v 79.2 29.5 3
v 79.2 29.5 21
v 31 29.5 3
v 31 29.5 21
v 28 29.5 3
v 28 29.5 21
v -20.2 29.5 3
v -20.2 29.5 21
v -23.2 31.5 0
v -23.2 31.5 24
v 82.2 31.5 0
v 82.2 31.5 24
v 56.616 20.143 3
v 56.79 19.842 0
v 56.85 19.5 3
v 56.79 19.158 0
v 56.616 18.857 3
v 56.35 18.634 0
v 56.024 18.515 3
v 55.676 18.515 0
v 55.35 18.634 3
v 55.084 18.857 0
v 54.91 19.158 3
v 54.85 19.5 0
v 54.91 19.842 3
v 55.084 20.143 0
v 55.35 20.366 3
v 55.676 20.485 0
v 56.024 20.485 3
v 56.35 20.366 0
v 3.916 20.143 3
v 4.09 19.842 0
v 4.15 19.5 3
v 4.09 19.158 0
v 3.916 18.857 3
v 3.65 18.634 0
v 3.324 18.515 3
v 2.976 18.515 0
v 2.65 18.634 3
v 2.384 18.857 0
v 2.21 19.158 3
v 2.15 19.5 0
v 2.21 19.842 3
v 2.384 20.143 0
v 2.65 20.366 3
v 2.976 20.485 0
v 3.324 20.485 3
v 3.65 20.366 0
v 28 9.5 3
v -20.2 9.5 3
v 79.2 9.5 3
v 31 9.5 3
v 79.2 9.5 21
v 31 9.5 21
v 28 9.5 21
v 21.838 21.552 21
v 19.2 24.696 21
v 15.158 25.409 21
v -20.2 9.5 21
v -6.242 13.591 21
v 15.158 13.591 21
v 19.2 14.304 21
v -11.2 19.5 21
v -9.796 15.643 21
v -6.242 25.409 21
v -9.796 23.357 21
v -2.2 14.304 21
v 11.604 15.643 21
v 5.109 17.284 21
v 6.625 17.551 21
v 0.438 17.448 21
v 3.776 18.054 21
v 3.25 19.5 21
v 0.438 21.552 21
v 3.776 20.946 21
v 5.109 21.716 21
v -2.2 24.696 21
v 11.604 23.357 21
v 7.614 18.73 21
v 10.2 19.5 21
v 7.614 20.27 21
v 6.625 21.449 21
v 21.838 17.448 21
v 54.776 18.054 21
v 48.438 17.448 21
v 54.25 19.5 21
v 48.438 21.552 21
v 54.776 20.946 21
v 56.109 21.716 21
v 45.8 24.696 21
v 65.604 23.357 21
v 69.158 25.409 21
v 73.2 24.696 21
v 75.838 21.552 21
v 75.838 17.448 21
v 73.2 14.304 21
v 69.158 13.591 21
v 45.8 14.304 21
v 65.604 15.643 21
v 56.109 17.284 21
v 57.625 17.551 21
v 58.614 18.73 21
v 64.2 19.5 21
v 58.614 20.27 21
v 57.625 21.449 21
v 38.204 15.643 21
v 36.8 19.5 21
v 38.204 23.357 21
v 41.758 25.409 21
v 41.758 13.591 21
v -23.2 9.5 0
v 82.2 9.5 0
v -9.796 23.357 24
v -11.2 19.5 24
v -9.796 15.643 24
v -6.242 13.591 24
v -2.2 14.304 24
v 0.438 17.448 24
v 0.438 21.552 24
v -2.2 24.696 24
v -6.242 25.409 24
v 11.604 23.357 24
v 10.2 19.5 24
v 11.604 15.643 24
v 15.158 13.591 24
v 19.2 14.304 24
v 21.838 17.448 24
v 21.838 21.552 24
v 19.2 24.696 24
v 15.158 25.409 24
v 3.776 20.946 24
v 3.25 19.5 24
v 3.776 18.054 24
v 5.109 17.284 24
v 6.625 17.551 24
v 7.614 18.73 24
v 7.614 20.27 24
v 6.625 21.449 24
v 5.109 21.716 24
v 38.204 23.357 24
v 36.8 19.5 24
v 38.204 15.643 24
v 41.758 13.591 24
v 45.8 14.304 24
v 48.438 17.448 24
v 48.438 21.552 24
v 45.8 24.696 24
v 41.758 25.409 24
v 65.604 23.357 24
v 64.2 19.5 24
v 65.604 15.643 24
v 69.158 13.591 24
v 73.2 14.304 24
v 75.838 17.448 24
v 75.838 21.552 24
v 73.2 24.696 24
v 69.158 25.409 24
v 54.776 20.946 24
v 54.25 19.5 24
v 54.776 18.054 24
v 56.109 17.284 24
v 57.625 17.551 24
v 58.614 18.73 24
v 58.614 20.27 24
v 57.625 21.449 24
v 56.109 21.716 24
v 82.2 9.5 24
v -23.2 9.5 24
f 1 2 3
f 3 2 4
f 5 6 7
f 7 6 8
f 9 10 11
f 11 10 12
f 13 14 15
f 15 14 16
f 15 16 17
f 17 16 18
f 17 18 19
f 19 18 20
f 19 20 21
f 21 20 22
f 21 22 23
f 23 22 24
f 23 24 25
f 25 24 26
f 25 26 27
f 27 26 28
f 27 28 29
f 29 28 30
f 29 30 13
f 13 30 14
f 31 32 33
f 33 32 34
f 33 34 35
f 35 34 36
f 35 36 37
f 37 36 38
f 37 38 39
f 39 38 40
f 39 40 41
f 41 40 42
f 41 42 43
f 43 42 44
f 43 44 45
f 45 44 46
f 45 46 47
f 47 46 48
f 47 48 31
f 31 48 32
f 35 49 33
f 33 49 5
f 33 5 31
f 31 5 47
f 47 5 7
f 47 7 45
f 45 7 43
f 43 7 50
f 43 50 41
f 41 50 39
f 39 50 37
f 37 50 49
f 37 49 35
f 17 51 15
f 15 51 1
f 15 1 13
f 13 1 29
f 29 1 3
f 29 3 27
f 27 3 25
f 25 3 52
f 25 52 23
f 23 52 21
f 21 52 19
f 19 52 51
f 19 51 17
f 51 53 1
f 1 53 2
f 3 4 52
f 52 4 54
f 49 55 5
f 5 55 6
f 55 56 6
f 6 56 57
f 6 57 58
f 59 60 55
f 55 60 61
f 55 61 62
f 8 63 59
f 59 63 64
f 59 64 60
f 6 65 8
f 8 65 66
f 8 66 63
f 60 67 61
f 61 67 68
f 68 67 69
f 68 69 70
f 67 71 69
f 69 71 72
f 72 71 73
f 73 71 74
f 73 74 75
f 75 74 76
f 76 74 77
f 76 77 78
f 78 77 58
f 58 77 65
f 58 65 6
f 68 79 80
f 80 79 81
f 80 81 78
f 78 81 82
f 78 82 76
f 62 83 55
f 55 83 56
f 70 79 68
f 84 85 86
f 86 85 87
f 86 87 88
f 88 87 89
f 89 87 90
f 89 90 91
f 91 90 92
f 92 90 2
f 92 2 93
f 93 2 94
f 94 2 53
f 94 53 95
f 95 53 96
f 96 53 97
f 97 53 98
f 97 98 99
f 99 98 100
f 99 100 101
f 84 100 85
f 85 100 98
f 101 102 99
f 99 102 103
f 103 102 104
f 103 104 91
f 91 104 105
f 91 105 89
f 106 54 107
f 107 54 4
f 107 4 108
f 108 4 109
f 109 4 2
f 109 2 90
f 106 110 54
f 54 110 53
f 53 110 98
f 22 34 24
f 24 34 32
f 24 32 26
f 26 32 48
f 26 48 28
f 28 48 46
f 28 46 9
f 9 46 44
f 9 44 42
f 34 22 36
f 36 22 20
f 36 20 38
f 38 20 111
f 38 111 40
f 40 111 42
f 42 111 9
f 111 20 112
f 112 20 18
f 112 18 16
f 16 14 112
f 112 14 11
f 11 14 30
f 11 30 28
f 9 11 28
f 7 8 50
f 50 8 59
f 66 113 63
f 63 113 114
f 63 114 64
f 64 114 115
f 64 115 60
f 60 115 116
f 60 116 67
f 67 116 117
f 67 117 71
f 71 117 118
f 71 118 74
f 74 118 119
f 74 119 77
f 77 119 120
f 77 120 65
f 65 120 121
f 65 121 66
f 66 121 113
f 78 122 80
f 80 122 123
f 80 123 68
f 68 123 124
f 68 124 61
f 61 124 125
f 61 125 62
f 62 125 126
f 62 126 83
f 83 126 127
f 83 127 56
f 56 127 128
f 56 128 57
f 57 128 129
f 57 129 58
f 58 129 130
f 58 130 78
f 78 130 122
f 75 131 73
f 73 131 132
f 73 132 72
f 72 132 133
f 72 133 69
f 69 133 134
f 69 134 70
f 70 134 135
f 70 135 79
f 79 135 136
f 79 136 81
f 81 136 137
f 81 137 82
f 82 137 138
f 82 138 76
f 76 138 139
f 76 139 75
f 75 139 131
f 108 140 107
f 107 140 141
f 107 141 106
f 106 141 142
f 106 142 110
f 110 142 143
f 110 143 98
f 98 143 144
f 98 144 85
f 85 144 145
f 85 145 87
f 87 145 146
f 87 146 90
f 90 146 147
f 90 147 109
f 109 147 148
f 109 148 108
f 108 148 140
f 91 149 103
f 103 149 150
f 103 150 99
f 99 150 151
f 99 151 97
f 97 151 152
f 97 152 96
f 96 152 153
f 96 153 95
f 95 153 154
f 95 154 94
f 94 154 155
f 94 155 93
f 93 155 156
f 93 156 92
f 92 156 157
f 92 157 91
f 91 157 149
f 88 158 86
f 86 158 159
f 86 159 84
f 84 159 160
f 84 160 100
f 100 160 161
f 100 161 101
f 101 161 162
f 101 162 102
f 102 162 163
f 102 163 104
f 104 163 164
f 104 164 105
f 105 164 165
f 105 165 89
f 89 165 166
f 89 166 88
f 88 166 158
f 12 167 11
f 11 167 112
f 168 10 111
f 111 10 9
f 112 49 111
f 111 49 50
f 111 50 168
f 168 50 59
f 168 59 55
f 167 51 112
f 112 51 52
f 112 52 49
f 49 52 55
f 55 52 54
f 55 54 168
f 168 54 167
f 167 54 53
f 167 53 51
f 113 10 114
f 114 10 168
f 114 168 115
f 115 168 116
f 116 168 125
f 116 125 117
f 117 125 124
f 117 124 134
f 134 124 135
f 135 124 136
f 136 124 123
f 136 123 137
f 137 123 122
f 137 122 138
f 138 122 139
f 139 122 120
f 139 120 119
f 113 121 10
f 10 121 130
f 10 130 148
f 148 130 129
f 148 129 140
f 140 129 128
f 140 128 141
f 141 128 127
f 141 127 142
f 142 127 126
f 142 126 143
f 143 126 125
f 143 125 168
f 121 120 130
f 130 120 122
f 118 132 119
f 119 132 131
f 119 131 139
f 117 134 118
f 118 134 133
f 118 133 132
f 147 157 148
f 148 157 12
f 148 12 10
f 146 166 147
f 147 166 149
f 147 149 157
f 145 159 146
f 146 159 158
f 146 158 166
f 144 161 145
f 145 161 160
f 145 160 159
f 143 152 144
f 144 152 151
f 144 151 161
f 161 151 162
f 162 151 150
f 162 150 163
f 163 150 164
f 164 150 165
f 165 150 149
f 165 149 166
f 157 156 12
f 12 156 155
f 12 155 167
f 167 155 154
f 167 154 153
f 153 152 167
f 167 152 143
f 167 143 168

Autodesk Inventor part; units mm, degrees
ref_plane "YZ Plane" through (0, 0, 0) normal (1, 0, 0) x (0, 1, 0)
ref_plane "XZ Plane" through (0, 0, 0) normal (0, 1, 0) x (-1, 0, 0)
ref_plane "XY Plane" through (0, 0, 0) normal (0, 0, 1) x (1, 0, 0)
ref_plane "Work Plane2" through (56.5, 19.5, 24) normal (0, 0, -1) x (-1, 0, 0)
sketch "Sketch2" plane through (56.5, 19.5, 24) normal (0, 0, -1) x (-1, 0, 0)
  circle A0 centre (-13.7, 0) radius 2.5 projected
  circle A1 centre (13.7, 0) radius 2.5 projected
  line L0 (25.7, -17.7) -> (25.7, 17.7) projected
  line L1 (25.7, 17.7) -> (-25.7, 17.7) projected
  line L2 (-25.7, 17.7) -> (-25.7, -17.7) projected
  line L3 (-25.7, -17.7) -> (25.7, -17.7) projected
  arc A2 (79.7, 4.408) -> (68.0785, -17.7) centre (105, -23) ccw projected
  line L4 (79.7, 4.408) -> (79.7, 17.7) projected
  line L5 (79.7, 17.7) -> (28.3, 17.7) projected
  line L6 (28.3, 17.7) -> (28.3, -17.7) projected
  line L7 (28.3, -17.7) -> (68.0785, -17.7) projected
  line L8 (-25.7, -10) -> (79.7, -10)
  line L9 (79.7, -10) -> (79.7, 10)
  line L10 (79.7, 10) -> (-25.7, 10)
  line L11 (-25.7, 10) -> (-25.7, -10)
  circle A3 centre (-13.7, 0) radius 6
  circle A4 centre (13.7, 0) radius 6
  circle A5 centre (40.3, 0) radius 6
  circle A6 centre (61.7, 0) radius 6
  line L12 (-13.7, 0) -> (13.7, 0)
  line L13 (40.3, 0) -> (61.7, 0)
  circle A7 centre (0, 0) radius 2.25
  circle A8 centre (51, 0) radius 2.25
  line L14 (4.5099, -3.2615) -> (2.8081, -0.5216) projected
  line L15 (2.8081, -0.5216) -> (1.1404, -3.2615) projected
  line L16 (1.1404, -3.2615) -> (0.074, -3.2615) projected
  line L17 (0.074, -3.2615) -> (2.2352, 0.2328) projected
  line L18 (2.2352, 0.2328) -> (0.0059, 3.7385) projected
  line L19 (0.0059, 3.7385) -> (1.0099, 3.7385) projected
  line L20 (1.0099, 3.7385) -> (2.7458, 0.9476) projected
  line L21 (2.7458, 0.9476) -> (4.4475, 3.7385) projected
  line L22 (4.4475, 3.7385) -> (5.514, 3.7385) projected
  line L23 (5.514, 3.7385) -> (3.3244, 0.1875) projected
  line L24 (3.3244, 0.1875) -> (5.514, -3.2615) projected
  line L25 (5.514, -3.2615) -> (4.5099, -3.2615) projected
  line L26 (-2.3823, -2.4333) -> (-0.0338, -2.4333) projected
  line L27 (-0.0338, -2.4333) -> (-0.0338, -3.2615) projected
  line L28 (-0.0338, -3.2615) -> (-5.6611, -3.2615) projected
  line L29 (-5.6611, -3.2615) -> (-5.6611, -2.4333) projected
  line L30 (-5.6611, -2.4333) -> (-3.3126, -2.4333) projected
  line L31 (-3.3126, -2.4333) -> (-3.3126, 3.7385) projected
  line L32 (-3.3126, 3.7385) -> (-2.3823, 3.7385) projected
  line L33 (-2.3823, 3.7385) -> (-2.3823, -2.4333) projected
  arc A9 (42.6087, -0.959) -> (42.3892, -1.3731) centre (40.3, 0) ccw projected
  arc A10 (59.4794, -1.1484) -> (60.4698, 2.1764) centre (61.7, 0) ccw projected
  line L34 (57.8929, -1.3844) -> (57.5298, -1.3844) projected
  spline S0 degree 3 poles (57.5298, -1.3844) (57.5237, -1.3081) (57.5086, -1.2288) (57.4558, -1.1142) (57.4282, -1.0735) (57.3717, -1.0212) (57.3384, -0.995) (57.2167, -0.9422) (57.1455, -0.9254) (56.9893, -0.9013) (56.8956, -0.8966) (56.8066, -0.8966) knots 0 0 0 0 0.022986 0.022986 0.03781 0.03781 0.046043 0.046043 0.054997 0.054997 0.066568 0.066568 0.066568 0.066568 projected
  line L35 (56.8066, -0.8966) -> (56.8066, -0.5761) projected
  line L36 (56.8066, -0.5761) -> (57.4419, -0.5761) projected
  line L37 (57.4419, -0.5761) -> (57.4419, 1.7695) projected
  line L38 (57.4419, 1.7695) -> (56.8066, 1.7695) projected
  line L39 (56.8066, 1.7695) -> (56.8066, 2.1269) projected
  line L40 (56.8066, 2.1269) -> (58.514, 2.1269) projected
  line L41 (58.514, 2.1269) -> (58.514, 1.7695) projected
  line L42 (58.514, 1.7695) -> (57.8929, 1.7695) projected
  line L43 (57.8929, 1.7695) -> (57.8929, -1.3844) projected
  spline S1 degree 3 poles (45.7308, 1.7809) (45.6428, 1.7809) (45.5609, 1.7718) (45.4737, 1.739) (45.4331, 1.721) (45.3624, 1.6543) (45.3386, 1.6213) (45.3196, 1.5852) knots 0 0 0 0 0.026399 0.026399 0.03577 0.03577 0.042559 0.042559 0.042559 0.042559 projected
  spline S2 degree 3 poles (45.3196, 1.5852) (45.285, 1.5198) (45.2647, 1.448) (45.2437, 1.3061) (45.2345, 1.1849) (45.2345, 0.9981) knots 0 0 0 0 0.022182 0.022182 0.043047 0.043047 0.043047 0.043047 projected
  line L44 (45.2345, 0.9981) -> (45.2345, -0.4995) projected
  line L45 (45.2345, -0.4995) -> (44.792, -0.4995) projected
  line L46 (44.792, -0.4995) -> (44.792, 1.2051) projected
  spline S3 degree 3 poles (44.792, 1.2051) (44.792, 1.3545) (44.8067, 1.5155) (44.8672, 1.6957) (44.8911, 1.7601) (44.958, 1.877) (44.9913, 1.9233) (45.0302, 1.9652) knots 0 0 0 0 0.044826 0.044826 0.056895 0.056895 0.065812 0.065812 0.065812 0.065812 projected
  spline S4 degree 3 poles (45.0302, 1.9652) (45.0905, 2.0317) (45.1609, 2.0847) (45.3085, 2.1538) (45.3745, 2.1714) (45.4853, 2.1945) (45.5496, 2.2006) (45.6145, 2.2006) knots 0 0 0 0 0.026924 0.026924 0.04891 0.04891 0.078499 0.078499 0.078499 0.078499 projected
  spline S5 degree 3 poles (45.6145, 2.2006) (45.7367, 2.2006) (45.856, 2.1806) (46.1082, 2.0762) (46.2634, 1.9672) (46.4115, 1.8376) knots 0 0 0 0 0.03664 0.03664 0.081871 0.081871 0.081871 0.081871 projected
  line L47 (46.4115, 1.8376) -> (46.4115, 2.1269) projected
  line L48 (46.4115, 2.1269) -> (46.854, 2.1269) projected
  line L49 (46.854, 2.1269) -> (46.854, -0.4995) projected
  line L50 (46.854, -0.4995) -> (46.4115, -0.4995) projected
  line L51 (46.4115, -0.4995) -> (46.4115, 1.4632) projected
  spline S6 degree 3 poles (46.4115, 1.4632) (46.309, 1.5525) (46.1968, 1.6275) (46.0461, 1.7035) (45.9801, 1.7358) (45.8432, 1.7724) (45.7873, 1.7809) (45.7308, 1.7809) knots 0 0 0 0 0.040789 0.040789 0.050641 0.050641 0.057178 0.057178 0.057178 0.057178 projected
  spline S7 degree 3 poles (51.8516, 1.6844) (51.7705, 1.7209) (51.6843, 1.748) (51.5493, 1.7794) (51.4479, 1.8007) (51.3127, 1.8007) knots 0 0 0 0 0.026676 0.026676 0.041585 0.041585 0.041585 0.041585 projected
  spline S8 degree 3 poles (51.3127, 1.8007) (51.1845, 1.8007) (51.0556, 1.7828) (50.8451, 1.6988) (50.7638, 1.6466) (50.6381, 1.5232) (50.5772, 1.4464) (50.4997, 1.2649) (50.4792, 1.1913) (50.4509, 1.032) (50.4448, 0.945) (50.4448, 0.8591) knots 0 0 0 0 0.038454 0.038454 0.067967 0.067967 0.091284 0.091284 0.105855 0.105855 0.12236 0.12236 0.12236 0.12236 projected
  line L52 (50.4448, 0.8591) -> (52.2628, 0.8591) projected
  line L53 (52.2628, 0.8591) -> (52.2628, 0.618) projected
  spline S9 degree 3 poles (52.2628, 0.618) (52.2628, 0.4424) (52.2453, 0.2525) (52.1718, 0.0405) (52.143, -0.0344) (52.0602, -0.1744) (52.0187, -0.2302) (51.9707, -0.2811) knots 0 0 0 0 0.052672 0.052672 0.067134 0.067134 0.078057 0.078057 0.078057 0.078057 projected
  spline S10 degree 3 poles (51.9707, -0.2811) (51.893, -0.3652) (51.8025, -0.4318) (51.617, -0.5165) (51.5377, -0.5373) (51.3865, -0.5664) (51.2983, -0.5733) (51.2106, -0.5733) knots 0 0 0 0 0.034343 0.034343 0.061185 0.061185 0.096748 0.096748 0.096748 0.096748 projected
  spline S11 degree 3 poles (51.2106, -0.5733) (51.0481, -0.5733) (50.8885, -0.5476) (50.6078, -0.4322) (50.4929, -0.3547) (50.3003, -0.1657) (50.202, -0.0414) (50.0813, 0.2355) (50.0497, 0.3439) (50.0062, 0.5775) (49.9966, 0.7031) (49.9966, 0.8279) knots 0 0 0 0 0.048724 0.048724 0.091034 0.091034 0.12966 0.12966 0.152677 0.152677 0.178144 0.178144 0.178144 0.178144 projected
  spline S12 degree 3 poles (49.9966, 0.8279) (49.9966, 1.0393) (50.0239, 1.2553) (50.1545, 1.5922) (50.2316, 1.7178) (50.4061, 1.8994) (50.5129, 1.991) (50.7696, 2.1065) (50.8695, 2.1363) (51.0857, 2.1775) (51.2024, 2.1865) (51.3183, 2.1865) knots 0 0 0 0 0.063413 0.063413 0.108296 0.108296 0.138905 0.138905 0.156893 0.156893 0.176912 0.176912 0.176912 0.176912 projected
  spline S13 degree 3 poles (51.3183, 2.1865) (51.4021, 2.1865) (51.4991, 2.1826) (51.6606, 2.1542) (51.7381, 2.1348) (51.8147, 2.1127) knots 0 0 0 0 0.025143 0.025143 0.04891 0.04891 0.04891 0.04891 projected
  spline S14 degree 3 poles (51.8147, 2.1127) (51.8833, 2.0934) (51.9554, 2.0677) (52.0547, 2.0289) (52.1398, 1.9957) (52.2146, 1.9652) knots 0 0 0 0 0.021391 0.021391 0.032028 0.032028 0.032028 0.032028 projected
  line L54 (52.2146, 1.9652) -> (52.2146, 1.4831) projected
  line L55 (52.2146, 1.4831) -> (52.1891, 1.4831) projected
  spline S15 degree 3 poles (52.1891, 1.4831) (52.1478, 1.5178) (52.099, 1.5503) (52.0076, 1.6054) (51.9453, 1.6398) (51.8516, 1.6844) knots 0 0 0 0 0.016171 0.016171 0.032088 0.032088 0.032088 0.032088 projected
  line L56 (55.102, 0.479) -> (54.4666, -0.4995) projected
  line L57 (54.4666, -0.4995) -> (53.9249, -0.4995) projected
  line L58 (53.9249, -0.4995) -> (54.8268, 0.825) projected
  line L59 (54.8268, 0.825) -> (53.9164, 2.1269) projected
  line L60 (53.9164, 2.1269) -> (54.4184, 2.1269) projected
  line L61 (54.4184, 2.1269) -> (55.0736, 1.1399) projected
  line L62 (55.0736, 1.1399) -> (55.7118, 2.1269) projected
  line L63 (55.7118, 2.1269) -> (56.2535, 2.1269) projected
  line L64 (56.2535, 2.1269) -> (55.3487, 0.7967) projected
  line L65 (55.3487, 0.7967) -> (56.2535, -0.4995) projected
  line L66 (56.2535, -0.4995) -> (55.7515, -0.4995) projected
  line L67 (55.7515, -0.4995) -> (55.102, 0.479) projected
  line L68 (47.9375, -0.4995) -> (47.495, -0.4995) projected
  line L69 (47.495, -0.4995) -> (47.495, 2.1269) projected
  line L70 (47.495, 2.1269) -> (47.9375, 2.1269) projected
  line L71 (47.9375, 2.1269) -> (47.9375, 0.1642) projected
  spline S16 degree 3 poles (47.9375, 0.1642) (48.0425, 0.0752) (48.1563, -0.0036) (48.3085, -0.0803) (48.3714, -0.1108) (48.5059, -0.1457) (48.5616, -0.1535) (48.6182, -0.1535) knots 0 0 0 0 0.041291 0.041291 0.051107 0.051107 0.057838 0.057838 0.057838 0.057838 projected
  spline S17 degree 3 poles (48.6182, -0.1535) (48.7, -0.1535) (48.7817, -0.1446) (48.8974, -0.0998) (48.93, -0.076) (48.9847, -0.0271) (49.0096, 0.0057) (49.0294, 0.0422) knots 0 0 0 0 0.024559 0.024559 0.041876 0.041876 0.064511 0.064511 0.064511 0.064511 projected
  spline S18 degree 3 poles (49.0294, 0.0422) (49.0561, 0.0912) (49.073, 0.1478) (49.1133, 0.3489) (49.1145, 0.5537) (49.1145, 0.6293) knots 0 0 0 0 0.016734 0.016734 0.061642 0.061642 0.061642 0.061642 projected
  line L72 (49.1145, 0.6293) -> (49.1145, 2.1269) projected
  line L73 (49.1145, 2.1269) -> (49.557, 2.1269) projected
  line L74 (49.557, 2.1269) -> (49.557, 0.4223) projected
  spline S19 degree 3 poles (49.557, 0.4223) (49.557, 0.2581) (49.5382, 0.0862) (49.4352, -0.1948) (49.3743, -0.2801) (49.2563, -0.408) (49.1824, -0.4621) (49.0432, -0.5259) (48.9864, -0.5435) (48.8642, -0.5679) (48.7993, -0.5733) (48.7345, -0.5733) knots 0 0 0 0 0.049248 0.049248 0.089656 0.089656 0.136427 0.136427 0.166338 0.166338 0.198819 0.198819 0.198819 0.198819 projected
  spline S20 degree 3 poles (48.7345, -0.5733) (48.6109, -0.5733) (48.4919, -0.5502) (48.2777, -0.4606) (48.1258, -0.3769) (47.9375, -0.2074) knots 0 0 0 0 0.037074 0.037074 0.069655 0.069655 0.069655 0.069655 projected
  line L75 (47.9375, -0.2074) -> (47.9375, -0.4995) projected
  line L76 (42.6087, -0.959) -> (42.852, -0.959) projected
  line L77 (42.852, -0.959) -> (42.852, 2.1269) projected
  line L78 (42.852, 2.1269) -> (43.3171, 2.1269) projected
  line L79 (43.3171, 2.1269) -> (43.3171, -0.959) projected
  line L80 (43.3171, -0.959) -> (44.4913, -0.959) projected
  line L81 (44.4913, -0.959) -> (44.4913, -1.3731) projected
  line L82 (44.4913, -1.3731) -> (42.3892, -1.3731) projected
  spline S21 degree 3 poles (59.4794, -1.1484) (59.3969, -1.0576) (59.3421, -0.9609) (59.2272, -0.7174) (59.1797, -0.5284) (59.1114, -0.1119) (59.0983, 0.1408) (59.0983, 0.3797) knots 0.082757 0.082757 0.082757 0.082757 0.120643 0.120643 0.201299 0.201299 0.306837 0.306837 0.306837 0.306837 projected
  spline S22 degree 3 poles (59.0983, 0.3797) (59.0983, 0.7645) (59.1335, 1.1554) (59.3174, 1.6919) (59.4043, 1.8129) (59.536, 1.9692) (59.6237, 2.0404) (59.7982, 2.1301) (59.8747, 2.1564) (60.0407, 2.1927) (60.1298, 2.2006) (60.2187, 2.2006) knots 0 0 0 0 0.115433 0.115433 0.194252 0.194252 0.295797 0.295797 0.367401 0.367401 0.445791 0.445791 0.445791 0.445791 projected
  spline S23 degree 3 poles (60.2187, 2.2006) (60.3032, 2.2006) (60.3875, 2.1934) (60.4698, 2.1764) knots 0 0 0 0 0.02535 0.02535 0.02535 0.02535 projected
  point P0 (56.5, -19.5)
  dimension "d0" = 20
  dimension "d1" = 10
  dimension "d2" = 12
  dimension "d3" = 12
  dimension "d4" = 12
  dimension "d5" = 12
  dimension "d6" = 4.5
  dimension "d7" = 4.5
extrude "Extrusion1" add sketch "Sketch2" along normal blind 3 contours L31 L32 L33 L12 | L12 L33 L26 L27 L28 L29 L30 L31 | L18 L19 L20 L21 L22 L23 L24 L12 A7 | A7 L12 L24 L25 L14 L15 L16 L17 | L8 L2 L10 L0 | L0 L10 L6 L8 | L6 L10 L4 A2 L8 | A2 L9 L8 | L58 L59 L60 L61 L62 L63 A6 L64 L65 L13 L67 L56 | L13 L56 L57 L58 | L69 L70 L71 S16 L13 | L13 S16 S17 A8 S19 S20 L75 L68 L69 | A5 S6 L51 L13 | A5 S5 L47 L48 L49 L13 L51 S6 | L13 L49 L50 L51 | L13 A8 S17 S16 | L72 L73 L74 A8 | S13 S14 L54 A8 | L56 L67 L13 | L13 A6 L67 | L65 L64 A6
sketch "Sketch3" plane through (-23.2, 9.5, 24) normal (-1, 0, 0) x (0, 0, 1)
  line L0 (-3, 0) -> (-3, 20) projected
  line L1 (-24, 27.5) -> (-24, -46.5) projected
  line L2 (-3, 20) -> (-24, 20)
  line L3 (-3, 0) -> (-24, 0)
  point P0 (-24, -9.5)
extrude "Extrusion2" add sketch "Sketch3" against normal blind 3
sketch "Sketch4" plane through (82.2, 9.5, 24) normal (1, 0, 0) x (0, 0, -1)
  line L0 (3, 0) -> (3, 20) projected
  line L1 (3, 0) -> (24, 0) projected
  line L2 (24, 0) -> (24, 20) projected
  line L3 (24, 20) -> (3, 20) projected
  point P0 (24, -9.5)
extrude "Extrusion3" add sketch "Sketch4" against normal blind 3
ref_plane "Work Plane3" through (29.5, 9.5, 24) normal (1, 0, 0) x (0, 0, -1)
sketch "Sketch5" plane through (29.5, 9.5, 24) normal (1, 0, 0) x (0, 0, -1)
  line L0 (3, 0) -> (3, 20) projected
  line L1 (3, 0) -> (24, 0) projected
  line L2 (24, 0) -> (24, 20) projected
  line L3 (24, 20) -> (3, 20) projected
  point P0 (24, -9.5)
extrude "Extrusion4" add sketch "Sketch5" along normal mid plane 3
ref_plane "Work Plane4" through (0, 0, 0) normal (0, 0, 1) x (1, 0, 0)
sketch "Sketch6" plane through (0, 0, 0) normal (0, 0, 1) x (1, 0, 0)
  line L0 (79.2, 29.5) -> (79.2, 9.5) projected
  line L1 (79.2, 29.5) -> (-20.2, 29.5)
  line L2 (-20.2, 29.5) -> (-20.2, 9.5)
  line L3 (-20.2, 9.5) -> (79.2, 9.5)
  line L4 (79.2, 9.5) -> (79.2, 29.5)
  point P0 (0, 0)
extrude "Extrusion5" add sketch "Sketch6" along normal blind 3
sketch "Sketch7" plane through (82.2, 9.5, 0) normal (0, 0, -1) x (-1, 0, 0)
  circle A0 centre (87.4, 10) radius 6 projected
  circle A1 centre (66, 10) radius 6 projected
  circle A2 centre (76.7, 10) radius 2.25 projected
  circle A3 centre (39.4, 10) radius 6 projected
  circle A4 centre (12, 10) radius 6 projected
  circle A5 centre (25.7, 10) radius 2.25 projected
  line L0 (0, 0) -> (105.4, 0) projected
  line L1 (0, 20) -> (0, 0) projected
  line L2 (105.4, 20) -> (0, 20) projected
  line L3 (105.4, 0) -> (105.4, 20) projected
  line L4 (0, 0) -> (0, 20) projected
  line L5 (0, 20) -> (52.7, 0) construction
  line L6 (0, 0) -> (105.4, 0) projected
  line L7 (52.7, 0) -> (105.4, 20) construction
  line L8 (105.4, 20) -> (105.4, 0) projected
  line L9 (52.7, 20) -> (105.4, 0) construction
  line L10 (0, 0) -> (52.7, 20) construction
  point P0 (82.2, -9.5)
  point P1 (26.35, 10)
  point P2 (79.05, 10)
hole "Hole1" at (55.85, 19.5, 0) at (3.15, 19.5, 0) direction (0, 0, 1) diameter 2 depth 8 tip angle 118
sketch "Sketch8" plane through (-23.2, 29.5, 24) normal (0, 1, 0) x (1, 0, 0)
  line L0 (102.4, 3) -> (102.4, 21) projected
  line L1 (54.2, 3) -> (102.4, 3) projected
  line L2 (54.2, 21) -> (54.2, 3) projected
  line L3 (102.4, 21) -> (54.2, 21) projected
  line L4 (105.4, 24) -> (0, 24) projected
  line L5 (0, 0) -> (0, 24) projected
  line L6 (0, 0) -> (105.4, 0) projected
  line L7 (105.4, 0) -> (105.4, 24) projected
  line L8 (51.2, 21) -> (3, 21) projected
  line L9 (51.2, 3) -> (51.2, 21) projected
  line L10 (3, 3) -> (51.2, 3) projected
  line L11 (3, 21) -> (3, 3) projected
  point P0 (23.2, 24)
extrude "Extrusion6" add sketch "Sketch8" along normal blind 2 contours L1 L2 L3 L0 | L7 L6 L5 L4 | L9 L10 L11 L8
properties part number "buttonHolder"
